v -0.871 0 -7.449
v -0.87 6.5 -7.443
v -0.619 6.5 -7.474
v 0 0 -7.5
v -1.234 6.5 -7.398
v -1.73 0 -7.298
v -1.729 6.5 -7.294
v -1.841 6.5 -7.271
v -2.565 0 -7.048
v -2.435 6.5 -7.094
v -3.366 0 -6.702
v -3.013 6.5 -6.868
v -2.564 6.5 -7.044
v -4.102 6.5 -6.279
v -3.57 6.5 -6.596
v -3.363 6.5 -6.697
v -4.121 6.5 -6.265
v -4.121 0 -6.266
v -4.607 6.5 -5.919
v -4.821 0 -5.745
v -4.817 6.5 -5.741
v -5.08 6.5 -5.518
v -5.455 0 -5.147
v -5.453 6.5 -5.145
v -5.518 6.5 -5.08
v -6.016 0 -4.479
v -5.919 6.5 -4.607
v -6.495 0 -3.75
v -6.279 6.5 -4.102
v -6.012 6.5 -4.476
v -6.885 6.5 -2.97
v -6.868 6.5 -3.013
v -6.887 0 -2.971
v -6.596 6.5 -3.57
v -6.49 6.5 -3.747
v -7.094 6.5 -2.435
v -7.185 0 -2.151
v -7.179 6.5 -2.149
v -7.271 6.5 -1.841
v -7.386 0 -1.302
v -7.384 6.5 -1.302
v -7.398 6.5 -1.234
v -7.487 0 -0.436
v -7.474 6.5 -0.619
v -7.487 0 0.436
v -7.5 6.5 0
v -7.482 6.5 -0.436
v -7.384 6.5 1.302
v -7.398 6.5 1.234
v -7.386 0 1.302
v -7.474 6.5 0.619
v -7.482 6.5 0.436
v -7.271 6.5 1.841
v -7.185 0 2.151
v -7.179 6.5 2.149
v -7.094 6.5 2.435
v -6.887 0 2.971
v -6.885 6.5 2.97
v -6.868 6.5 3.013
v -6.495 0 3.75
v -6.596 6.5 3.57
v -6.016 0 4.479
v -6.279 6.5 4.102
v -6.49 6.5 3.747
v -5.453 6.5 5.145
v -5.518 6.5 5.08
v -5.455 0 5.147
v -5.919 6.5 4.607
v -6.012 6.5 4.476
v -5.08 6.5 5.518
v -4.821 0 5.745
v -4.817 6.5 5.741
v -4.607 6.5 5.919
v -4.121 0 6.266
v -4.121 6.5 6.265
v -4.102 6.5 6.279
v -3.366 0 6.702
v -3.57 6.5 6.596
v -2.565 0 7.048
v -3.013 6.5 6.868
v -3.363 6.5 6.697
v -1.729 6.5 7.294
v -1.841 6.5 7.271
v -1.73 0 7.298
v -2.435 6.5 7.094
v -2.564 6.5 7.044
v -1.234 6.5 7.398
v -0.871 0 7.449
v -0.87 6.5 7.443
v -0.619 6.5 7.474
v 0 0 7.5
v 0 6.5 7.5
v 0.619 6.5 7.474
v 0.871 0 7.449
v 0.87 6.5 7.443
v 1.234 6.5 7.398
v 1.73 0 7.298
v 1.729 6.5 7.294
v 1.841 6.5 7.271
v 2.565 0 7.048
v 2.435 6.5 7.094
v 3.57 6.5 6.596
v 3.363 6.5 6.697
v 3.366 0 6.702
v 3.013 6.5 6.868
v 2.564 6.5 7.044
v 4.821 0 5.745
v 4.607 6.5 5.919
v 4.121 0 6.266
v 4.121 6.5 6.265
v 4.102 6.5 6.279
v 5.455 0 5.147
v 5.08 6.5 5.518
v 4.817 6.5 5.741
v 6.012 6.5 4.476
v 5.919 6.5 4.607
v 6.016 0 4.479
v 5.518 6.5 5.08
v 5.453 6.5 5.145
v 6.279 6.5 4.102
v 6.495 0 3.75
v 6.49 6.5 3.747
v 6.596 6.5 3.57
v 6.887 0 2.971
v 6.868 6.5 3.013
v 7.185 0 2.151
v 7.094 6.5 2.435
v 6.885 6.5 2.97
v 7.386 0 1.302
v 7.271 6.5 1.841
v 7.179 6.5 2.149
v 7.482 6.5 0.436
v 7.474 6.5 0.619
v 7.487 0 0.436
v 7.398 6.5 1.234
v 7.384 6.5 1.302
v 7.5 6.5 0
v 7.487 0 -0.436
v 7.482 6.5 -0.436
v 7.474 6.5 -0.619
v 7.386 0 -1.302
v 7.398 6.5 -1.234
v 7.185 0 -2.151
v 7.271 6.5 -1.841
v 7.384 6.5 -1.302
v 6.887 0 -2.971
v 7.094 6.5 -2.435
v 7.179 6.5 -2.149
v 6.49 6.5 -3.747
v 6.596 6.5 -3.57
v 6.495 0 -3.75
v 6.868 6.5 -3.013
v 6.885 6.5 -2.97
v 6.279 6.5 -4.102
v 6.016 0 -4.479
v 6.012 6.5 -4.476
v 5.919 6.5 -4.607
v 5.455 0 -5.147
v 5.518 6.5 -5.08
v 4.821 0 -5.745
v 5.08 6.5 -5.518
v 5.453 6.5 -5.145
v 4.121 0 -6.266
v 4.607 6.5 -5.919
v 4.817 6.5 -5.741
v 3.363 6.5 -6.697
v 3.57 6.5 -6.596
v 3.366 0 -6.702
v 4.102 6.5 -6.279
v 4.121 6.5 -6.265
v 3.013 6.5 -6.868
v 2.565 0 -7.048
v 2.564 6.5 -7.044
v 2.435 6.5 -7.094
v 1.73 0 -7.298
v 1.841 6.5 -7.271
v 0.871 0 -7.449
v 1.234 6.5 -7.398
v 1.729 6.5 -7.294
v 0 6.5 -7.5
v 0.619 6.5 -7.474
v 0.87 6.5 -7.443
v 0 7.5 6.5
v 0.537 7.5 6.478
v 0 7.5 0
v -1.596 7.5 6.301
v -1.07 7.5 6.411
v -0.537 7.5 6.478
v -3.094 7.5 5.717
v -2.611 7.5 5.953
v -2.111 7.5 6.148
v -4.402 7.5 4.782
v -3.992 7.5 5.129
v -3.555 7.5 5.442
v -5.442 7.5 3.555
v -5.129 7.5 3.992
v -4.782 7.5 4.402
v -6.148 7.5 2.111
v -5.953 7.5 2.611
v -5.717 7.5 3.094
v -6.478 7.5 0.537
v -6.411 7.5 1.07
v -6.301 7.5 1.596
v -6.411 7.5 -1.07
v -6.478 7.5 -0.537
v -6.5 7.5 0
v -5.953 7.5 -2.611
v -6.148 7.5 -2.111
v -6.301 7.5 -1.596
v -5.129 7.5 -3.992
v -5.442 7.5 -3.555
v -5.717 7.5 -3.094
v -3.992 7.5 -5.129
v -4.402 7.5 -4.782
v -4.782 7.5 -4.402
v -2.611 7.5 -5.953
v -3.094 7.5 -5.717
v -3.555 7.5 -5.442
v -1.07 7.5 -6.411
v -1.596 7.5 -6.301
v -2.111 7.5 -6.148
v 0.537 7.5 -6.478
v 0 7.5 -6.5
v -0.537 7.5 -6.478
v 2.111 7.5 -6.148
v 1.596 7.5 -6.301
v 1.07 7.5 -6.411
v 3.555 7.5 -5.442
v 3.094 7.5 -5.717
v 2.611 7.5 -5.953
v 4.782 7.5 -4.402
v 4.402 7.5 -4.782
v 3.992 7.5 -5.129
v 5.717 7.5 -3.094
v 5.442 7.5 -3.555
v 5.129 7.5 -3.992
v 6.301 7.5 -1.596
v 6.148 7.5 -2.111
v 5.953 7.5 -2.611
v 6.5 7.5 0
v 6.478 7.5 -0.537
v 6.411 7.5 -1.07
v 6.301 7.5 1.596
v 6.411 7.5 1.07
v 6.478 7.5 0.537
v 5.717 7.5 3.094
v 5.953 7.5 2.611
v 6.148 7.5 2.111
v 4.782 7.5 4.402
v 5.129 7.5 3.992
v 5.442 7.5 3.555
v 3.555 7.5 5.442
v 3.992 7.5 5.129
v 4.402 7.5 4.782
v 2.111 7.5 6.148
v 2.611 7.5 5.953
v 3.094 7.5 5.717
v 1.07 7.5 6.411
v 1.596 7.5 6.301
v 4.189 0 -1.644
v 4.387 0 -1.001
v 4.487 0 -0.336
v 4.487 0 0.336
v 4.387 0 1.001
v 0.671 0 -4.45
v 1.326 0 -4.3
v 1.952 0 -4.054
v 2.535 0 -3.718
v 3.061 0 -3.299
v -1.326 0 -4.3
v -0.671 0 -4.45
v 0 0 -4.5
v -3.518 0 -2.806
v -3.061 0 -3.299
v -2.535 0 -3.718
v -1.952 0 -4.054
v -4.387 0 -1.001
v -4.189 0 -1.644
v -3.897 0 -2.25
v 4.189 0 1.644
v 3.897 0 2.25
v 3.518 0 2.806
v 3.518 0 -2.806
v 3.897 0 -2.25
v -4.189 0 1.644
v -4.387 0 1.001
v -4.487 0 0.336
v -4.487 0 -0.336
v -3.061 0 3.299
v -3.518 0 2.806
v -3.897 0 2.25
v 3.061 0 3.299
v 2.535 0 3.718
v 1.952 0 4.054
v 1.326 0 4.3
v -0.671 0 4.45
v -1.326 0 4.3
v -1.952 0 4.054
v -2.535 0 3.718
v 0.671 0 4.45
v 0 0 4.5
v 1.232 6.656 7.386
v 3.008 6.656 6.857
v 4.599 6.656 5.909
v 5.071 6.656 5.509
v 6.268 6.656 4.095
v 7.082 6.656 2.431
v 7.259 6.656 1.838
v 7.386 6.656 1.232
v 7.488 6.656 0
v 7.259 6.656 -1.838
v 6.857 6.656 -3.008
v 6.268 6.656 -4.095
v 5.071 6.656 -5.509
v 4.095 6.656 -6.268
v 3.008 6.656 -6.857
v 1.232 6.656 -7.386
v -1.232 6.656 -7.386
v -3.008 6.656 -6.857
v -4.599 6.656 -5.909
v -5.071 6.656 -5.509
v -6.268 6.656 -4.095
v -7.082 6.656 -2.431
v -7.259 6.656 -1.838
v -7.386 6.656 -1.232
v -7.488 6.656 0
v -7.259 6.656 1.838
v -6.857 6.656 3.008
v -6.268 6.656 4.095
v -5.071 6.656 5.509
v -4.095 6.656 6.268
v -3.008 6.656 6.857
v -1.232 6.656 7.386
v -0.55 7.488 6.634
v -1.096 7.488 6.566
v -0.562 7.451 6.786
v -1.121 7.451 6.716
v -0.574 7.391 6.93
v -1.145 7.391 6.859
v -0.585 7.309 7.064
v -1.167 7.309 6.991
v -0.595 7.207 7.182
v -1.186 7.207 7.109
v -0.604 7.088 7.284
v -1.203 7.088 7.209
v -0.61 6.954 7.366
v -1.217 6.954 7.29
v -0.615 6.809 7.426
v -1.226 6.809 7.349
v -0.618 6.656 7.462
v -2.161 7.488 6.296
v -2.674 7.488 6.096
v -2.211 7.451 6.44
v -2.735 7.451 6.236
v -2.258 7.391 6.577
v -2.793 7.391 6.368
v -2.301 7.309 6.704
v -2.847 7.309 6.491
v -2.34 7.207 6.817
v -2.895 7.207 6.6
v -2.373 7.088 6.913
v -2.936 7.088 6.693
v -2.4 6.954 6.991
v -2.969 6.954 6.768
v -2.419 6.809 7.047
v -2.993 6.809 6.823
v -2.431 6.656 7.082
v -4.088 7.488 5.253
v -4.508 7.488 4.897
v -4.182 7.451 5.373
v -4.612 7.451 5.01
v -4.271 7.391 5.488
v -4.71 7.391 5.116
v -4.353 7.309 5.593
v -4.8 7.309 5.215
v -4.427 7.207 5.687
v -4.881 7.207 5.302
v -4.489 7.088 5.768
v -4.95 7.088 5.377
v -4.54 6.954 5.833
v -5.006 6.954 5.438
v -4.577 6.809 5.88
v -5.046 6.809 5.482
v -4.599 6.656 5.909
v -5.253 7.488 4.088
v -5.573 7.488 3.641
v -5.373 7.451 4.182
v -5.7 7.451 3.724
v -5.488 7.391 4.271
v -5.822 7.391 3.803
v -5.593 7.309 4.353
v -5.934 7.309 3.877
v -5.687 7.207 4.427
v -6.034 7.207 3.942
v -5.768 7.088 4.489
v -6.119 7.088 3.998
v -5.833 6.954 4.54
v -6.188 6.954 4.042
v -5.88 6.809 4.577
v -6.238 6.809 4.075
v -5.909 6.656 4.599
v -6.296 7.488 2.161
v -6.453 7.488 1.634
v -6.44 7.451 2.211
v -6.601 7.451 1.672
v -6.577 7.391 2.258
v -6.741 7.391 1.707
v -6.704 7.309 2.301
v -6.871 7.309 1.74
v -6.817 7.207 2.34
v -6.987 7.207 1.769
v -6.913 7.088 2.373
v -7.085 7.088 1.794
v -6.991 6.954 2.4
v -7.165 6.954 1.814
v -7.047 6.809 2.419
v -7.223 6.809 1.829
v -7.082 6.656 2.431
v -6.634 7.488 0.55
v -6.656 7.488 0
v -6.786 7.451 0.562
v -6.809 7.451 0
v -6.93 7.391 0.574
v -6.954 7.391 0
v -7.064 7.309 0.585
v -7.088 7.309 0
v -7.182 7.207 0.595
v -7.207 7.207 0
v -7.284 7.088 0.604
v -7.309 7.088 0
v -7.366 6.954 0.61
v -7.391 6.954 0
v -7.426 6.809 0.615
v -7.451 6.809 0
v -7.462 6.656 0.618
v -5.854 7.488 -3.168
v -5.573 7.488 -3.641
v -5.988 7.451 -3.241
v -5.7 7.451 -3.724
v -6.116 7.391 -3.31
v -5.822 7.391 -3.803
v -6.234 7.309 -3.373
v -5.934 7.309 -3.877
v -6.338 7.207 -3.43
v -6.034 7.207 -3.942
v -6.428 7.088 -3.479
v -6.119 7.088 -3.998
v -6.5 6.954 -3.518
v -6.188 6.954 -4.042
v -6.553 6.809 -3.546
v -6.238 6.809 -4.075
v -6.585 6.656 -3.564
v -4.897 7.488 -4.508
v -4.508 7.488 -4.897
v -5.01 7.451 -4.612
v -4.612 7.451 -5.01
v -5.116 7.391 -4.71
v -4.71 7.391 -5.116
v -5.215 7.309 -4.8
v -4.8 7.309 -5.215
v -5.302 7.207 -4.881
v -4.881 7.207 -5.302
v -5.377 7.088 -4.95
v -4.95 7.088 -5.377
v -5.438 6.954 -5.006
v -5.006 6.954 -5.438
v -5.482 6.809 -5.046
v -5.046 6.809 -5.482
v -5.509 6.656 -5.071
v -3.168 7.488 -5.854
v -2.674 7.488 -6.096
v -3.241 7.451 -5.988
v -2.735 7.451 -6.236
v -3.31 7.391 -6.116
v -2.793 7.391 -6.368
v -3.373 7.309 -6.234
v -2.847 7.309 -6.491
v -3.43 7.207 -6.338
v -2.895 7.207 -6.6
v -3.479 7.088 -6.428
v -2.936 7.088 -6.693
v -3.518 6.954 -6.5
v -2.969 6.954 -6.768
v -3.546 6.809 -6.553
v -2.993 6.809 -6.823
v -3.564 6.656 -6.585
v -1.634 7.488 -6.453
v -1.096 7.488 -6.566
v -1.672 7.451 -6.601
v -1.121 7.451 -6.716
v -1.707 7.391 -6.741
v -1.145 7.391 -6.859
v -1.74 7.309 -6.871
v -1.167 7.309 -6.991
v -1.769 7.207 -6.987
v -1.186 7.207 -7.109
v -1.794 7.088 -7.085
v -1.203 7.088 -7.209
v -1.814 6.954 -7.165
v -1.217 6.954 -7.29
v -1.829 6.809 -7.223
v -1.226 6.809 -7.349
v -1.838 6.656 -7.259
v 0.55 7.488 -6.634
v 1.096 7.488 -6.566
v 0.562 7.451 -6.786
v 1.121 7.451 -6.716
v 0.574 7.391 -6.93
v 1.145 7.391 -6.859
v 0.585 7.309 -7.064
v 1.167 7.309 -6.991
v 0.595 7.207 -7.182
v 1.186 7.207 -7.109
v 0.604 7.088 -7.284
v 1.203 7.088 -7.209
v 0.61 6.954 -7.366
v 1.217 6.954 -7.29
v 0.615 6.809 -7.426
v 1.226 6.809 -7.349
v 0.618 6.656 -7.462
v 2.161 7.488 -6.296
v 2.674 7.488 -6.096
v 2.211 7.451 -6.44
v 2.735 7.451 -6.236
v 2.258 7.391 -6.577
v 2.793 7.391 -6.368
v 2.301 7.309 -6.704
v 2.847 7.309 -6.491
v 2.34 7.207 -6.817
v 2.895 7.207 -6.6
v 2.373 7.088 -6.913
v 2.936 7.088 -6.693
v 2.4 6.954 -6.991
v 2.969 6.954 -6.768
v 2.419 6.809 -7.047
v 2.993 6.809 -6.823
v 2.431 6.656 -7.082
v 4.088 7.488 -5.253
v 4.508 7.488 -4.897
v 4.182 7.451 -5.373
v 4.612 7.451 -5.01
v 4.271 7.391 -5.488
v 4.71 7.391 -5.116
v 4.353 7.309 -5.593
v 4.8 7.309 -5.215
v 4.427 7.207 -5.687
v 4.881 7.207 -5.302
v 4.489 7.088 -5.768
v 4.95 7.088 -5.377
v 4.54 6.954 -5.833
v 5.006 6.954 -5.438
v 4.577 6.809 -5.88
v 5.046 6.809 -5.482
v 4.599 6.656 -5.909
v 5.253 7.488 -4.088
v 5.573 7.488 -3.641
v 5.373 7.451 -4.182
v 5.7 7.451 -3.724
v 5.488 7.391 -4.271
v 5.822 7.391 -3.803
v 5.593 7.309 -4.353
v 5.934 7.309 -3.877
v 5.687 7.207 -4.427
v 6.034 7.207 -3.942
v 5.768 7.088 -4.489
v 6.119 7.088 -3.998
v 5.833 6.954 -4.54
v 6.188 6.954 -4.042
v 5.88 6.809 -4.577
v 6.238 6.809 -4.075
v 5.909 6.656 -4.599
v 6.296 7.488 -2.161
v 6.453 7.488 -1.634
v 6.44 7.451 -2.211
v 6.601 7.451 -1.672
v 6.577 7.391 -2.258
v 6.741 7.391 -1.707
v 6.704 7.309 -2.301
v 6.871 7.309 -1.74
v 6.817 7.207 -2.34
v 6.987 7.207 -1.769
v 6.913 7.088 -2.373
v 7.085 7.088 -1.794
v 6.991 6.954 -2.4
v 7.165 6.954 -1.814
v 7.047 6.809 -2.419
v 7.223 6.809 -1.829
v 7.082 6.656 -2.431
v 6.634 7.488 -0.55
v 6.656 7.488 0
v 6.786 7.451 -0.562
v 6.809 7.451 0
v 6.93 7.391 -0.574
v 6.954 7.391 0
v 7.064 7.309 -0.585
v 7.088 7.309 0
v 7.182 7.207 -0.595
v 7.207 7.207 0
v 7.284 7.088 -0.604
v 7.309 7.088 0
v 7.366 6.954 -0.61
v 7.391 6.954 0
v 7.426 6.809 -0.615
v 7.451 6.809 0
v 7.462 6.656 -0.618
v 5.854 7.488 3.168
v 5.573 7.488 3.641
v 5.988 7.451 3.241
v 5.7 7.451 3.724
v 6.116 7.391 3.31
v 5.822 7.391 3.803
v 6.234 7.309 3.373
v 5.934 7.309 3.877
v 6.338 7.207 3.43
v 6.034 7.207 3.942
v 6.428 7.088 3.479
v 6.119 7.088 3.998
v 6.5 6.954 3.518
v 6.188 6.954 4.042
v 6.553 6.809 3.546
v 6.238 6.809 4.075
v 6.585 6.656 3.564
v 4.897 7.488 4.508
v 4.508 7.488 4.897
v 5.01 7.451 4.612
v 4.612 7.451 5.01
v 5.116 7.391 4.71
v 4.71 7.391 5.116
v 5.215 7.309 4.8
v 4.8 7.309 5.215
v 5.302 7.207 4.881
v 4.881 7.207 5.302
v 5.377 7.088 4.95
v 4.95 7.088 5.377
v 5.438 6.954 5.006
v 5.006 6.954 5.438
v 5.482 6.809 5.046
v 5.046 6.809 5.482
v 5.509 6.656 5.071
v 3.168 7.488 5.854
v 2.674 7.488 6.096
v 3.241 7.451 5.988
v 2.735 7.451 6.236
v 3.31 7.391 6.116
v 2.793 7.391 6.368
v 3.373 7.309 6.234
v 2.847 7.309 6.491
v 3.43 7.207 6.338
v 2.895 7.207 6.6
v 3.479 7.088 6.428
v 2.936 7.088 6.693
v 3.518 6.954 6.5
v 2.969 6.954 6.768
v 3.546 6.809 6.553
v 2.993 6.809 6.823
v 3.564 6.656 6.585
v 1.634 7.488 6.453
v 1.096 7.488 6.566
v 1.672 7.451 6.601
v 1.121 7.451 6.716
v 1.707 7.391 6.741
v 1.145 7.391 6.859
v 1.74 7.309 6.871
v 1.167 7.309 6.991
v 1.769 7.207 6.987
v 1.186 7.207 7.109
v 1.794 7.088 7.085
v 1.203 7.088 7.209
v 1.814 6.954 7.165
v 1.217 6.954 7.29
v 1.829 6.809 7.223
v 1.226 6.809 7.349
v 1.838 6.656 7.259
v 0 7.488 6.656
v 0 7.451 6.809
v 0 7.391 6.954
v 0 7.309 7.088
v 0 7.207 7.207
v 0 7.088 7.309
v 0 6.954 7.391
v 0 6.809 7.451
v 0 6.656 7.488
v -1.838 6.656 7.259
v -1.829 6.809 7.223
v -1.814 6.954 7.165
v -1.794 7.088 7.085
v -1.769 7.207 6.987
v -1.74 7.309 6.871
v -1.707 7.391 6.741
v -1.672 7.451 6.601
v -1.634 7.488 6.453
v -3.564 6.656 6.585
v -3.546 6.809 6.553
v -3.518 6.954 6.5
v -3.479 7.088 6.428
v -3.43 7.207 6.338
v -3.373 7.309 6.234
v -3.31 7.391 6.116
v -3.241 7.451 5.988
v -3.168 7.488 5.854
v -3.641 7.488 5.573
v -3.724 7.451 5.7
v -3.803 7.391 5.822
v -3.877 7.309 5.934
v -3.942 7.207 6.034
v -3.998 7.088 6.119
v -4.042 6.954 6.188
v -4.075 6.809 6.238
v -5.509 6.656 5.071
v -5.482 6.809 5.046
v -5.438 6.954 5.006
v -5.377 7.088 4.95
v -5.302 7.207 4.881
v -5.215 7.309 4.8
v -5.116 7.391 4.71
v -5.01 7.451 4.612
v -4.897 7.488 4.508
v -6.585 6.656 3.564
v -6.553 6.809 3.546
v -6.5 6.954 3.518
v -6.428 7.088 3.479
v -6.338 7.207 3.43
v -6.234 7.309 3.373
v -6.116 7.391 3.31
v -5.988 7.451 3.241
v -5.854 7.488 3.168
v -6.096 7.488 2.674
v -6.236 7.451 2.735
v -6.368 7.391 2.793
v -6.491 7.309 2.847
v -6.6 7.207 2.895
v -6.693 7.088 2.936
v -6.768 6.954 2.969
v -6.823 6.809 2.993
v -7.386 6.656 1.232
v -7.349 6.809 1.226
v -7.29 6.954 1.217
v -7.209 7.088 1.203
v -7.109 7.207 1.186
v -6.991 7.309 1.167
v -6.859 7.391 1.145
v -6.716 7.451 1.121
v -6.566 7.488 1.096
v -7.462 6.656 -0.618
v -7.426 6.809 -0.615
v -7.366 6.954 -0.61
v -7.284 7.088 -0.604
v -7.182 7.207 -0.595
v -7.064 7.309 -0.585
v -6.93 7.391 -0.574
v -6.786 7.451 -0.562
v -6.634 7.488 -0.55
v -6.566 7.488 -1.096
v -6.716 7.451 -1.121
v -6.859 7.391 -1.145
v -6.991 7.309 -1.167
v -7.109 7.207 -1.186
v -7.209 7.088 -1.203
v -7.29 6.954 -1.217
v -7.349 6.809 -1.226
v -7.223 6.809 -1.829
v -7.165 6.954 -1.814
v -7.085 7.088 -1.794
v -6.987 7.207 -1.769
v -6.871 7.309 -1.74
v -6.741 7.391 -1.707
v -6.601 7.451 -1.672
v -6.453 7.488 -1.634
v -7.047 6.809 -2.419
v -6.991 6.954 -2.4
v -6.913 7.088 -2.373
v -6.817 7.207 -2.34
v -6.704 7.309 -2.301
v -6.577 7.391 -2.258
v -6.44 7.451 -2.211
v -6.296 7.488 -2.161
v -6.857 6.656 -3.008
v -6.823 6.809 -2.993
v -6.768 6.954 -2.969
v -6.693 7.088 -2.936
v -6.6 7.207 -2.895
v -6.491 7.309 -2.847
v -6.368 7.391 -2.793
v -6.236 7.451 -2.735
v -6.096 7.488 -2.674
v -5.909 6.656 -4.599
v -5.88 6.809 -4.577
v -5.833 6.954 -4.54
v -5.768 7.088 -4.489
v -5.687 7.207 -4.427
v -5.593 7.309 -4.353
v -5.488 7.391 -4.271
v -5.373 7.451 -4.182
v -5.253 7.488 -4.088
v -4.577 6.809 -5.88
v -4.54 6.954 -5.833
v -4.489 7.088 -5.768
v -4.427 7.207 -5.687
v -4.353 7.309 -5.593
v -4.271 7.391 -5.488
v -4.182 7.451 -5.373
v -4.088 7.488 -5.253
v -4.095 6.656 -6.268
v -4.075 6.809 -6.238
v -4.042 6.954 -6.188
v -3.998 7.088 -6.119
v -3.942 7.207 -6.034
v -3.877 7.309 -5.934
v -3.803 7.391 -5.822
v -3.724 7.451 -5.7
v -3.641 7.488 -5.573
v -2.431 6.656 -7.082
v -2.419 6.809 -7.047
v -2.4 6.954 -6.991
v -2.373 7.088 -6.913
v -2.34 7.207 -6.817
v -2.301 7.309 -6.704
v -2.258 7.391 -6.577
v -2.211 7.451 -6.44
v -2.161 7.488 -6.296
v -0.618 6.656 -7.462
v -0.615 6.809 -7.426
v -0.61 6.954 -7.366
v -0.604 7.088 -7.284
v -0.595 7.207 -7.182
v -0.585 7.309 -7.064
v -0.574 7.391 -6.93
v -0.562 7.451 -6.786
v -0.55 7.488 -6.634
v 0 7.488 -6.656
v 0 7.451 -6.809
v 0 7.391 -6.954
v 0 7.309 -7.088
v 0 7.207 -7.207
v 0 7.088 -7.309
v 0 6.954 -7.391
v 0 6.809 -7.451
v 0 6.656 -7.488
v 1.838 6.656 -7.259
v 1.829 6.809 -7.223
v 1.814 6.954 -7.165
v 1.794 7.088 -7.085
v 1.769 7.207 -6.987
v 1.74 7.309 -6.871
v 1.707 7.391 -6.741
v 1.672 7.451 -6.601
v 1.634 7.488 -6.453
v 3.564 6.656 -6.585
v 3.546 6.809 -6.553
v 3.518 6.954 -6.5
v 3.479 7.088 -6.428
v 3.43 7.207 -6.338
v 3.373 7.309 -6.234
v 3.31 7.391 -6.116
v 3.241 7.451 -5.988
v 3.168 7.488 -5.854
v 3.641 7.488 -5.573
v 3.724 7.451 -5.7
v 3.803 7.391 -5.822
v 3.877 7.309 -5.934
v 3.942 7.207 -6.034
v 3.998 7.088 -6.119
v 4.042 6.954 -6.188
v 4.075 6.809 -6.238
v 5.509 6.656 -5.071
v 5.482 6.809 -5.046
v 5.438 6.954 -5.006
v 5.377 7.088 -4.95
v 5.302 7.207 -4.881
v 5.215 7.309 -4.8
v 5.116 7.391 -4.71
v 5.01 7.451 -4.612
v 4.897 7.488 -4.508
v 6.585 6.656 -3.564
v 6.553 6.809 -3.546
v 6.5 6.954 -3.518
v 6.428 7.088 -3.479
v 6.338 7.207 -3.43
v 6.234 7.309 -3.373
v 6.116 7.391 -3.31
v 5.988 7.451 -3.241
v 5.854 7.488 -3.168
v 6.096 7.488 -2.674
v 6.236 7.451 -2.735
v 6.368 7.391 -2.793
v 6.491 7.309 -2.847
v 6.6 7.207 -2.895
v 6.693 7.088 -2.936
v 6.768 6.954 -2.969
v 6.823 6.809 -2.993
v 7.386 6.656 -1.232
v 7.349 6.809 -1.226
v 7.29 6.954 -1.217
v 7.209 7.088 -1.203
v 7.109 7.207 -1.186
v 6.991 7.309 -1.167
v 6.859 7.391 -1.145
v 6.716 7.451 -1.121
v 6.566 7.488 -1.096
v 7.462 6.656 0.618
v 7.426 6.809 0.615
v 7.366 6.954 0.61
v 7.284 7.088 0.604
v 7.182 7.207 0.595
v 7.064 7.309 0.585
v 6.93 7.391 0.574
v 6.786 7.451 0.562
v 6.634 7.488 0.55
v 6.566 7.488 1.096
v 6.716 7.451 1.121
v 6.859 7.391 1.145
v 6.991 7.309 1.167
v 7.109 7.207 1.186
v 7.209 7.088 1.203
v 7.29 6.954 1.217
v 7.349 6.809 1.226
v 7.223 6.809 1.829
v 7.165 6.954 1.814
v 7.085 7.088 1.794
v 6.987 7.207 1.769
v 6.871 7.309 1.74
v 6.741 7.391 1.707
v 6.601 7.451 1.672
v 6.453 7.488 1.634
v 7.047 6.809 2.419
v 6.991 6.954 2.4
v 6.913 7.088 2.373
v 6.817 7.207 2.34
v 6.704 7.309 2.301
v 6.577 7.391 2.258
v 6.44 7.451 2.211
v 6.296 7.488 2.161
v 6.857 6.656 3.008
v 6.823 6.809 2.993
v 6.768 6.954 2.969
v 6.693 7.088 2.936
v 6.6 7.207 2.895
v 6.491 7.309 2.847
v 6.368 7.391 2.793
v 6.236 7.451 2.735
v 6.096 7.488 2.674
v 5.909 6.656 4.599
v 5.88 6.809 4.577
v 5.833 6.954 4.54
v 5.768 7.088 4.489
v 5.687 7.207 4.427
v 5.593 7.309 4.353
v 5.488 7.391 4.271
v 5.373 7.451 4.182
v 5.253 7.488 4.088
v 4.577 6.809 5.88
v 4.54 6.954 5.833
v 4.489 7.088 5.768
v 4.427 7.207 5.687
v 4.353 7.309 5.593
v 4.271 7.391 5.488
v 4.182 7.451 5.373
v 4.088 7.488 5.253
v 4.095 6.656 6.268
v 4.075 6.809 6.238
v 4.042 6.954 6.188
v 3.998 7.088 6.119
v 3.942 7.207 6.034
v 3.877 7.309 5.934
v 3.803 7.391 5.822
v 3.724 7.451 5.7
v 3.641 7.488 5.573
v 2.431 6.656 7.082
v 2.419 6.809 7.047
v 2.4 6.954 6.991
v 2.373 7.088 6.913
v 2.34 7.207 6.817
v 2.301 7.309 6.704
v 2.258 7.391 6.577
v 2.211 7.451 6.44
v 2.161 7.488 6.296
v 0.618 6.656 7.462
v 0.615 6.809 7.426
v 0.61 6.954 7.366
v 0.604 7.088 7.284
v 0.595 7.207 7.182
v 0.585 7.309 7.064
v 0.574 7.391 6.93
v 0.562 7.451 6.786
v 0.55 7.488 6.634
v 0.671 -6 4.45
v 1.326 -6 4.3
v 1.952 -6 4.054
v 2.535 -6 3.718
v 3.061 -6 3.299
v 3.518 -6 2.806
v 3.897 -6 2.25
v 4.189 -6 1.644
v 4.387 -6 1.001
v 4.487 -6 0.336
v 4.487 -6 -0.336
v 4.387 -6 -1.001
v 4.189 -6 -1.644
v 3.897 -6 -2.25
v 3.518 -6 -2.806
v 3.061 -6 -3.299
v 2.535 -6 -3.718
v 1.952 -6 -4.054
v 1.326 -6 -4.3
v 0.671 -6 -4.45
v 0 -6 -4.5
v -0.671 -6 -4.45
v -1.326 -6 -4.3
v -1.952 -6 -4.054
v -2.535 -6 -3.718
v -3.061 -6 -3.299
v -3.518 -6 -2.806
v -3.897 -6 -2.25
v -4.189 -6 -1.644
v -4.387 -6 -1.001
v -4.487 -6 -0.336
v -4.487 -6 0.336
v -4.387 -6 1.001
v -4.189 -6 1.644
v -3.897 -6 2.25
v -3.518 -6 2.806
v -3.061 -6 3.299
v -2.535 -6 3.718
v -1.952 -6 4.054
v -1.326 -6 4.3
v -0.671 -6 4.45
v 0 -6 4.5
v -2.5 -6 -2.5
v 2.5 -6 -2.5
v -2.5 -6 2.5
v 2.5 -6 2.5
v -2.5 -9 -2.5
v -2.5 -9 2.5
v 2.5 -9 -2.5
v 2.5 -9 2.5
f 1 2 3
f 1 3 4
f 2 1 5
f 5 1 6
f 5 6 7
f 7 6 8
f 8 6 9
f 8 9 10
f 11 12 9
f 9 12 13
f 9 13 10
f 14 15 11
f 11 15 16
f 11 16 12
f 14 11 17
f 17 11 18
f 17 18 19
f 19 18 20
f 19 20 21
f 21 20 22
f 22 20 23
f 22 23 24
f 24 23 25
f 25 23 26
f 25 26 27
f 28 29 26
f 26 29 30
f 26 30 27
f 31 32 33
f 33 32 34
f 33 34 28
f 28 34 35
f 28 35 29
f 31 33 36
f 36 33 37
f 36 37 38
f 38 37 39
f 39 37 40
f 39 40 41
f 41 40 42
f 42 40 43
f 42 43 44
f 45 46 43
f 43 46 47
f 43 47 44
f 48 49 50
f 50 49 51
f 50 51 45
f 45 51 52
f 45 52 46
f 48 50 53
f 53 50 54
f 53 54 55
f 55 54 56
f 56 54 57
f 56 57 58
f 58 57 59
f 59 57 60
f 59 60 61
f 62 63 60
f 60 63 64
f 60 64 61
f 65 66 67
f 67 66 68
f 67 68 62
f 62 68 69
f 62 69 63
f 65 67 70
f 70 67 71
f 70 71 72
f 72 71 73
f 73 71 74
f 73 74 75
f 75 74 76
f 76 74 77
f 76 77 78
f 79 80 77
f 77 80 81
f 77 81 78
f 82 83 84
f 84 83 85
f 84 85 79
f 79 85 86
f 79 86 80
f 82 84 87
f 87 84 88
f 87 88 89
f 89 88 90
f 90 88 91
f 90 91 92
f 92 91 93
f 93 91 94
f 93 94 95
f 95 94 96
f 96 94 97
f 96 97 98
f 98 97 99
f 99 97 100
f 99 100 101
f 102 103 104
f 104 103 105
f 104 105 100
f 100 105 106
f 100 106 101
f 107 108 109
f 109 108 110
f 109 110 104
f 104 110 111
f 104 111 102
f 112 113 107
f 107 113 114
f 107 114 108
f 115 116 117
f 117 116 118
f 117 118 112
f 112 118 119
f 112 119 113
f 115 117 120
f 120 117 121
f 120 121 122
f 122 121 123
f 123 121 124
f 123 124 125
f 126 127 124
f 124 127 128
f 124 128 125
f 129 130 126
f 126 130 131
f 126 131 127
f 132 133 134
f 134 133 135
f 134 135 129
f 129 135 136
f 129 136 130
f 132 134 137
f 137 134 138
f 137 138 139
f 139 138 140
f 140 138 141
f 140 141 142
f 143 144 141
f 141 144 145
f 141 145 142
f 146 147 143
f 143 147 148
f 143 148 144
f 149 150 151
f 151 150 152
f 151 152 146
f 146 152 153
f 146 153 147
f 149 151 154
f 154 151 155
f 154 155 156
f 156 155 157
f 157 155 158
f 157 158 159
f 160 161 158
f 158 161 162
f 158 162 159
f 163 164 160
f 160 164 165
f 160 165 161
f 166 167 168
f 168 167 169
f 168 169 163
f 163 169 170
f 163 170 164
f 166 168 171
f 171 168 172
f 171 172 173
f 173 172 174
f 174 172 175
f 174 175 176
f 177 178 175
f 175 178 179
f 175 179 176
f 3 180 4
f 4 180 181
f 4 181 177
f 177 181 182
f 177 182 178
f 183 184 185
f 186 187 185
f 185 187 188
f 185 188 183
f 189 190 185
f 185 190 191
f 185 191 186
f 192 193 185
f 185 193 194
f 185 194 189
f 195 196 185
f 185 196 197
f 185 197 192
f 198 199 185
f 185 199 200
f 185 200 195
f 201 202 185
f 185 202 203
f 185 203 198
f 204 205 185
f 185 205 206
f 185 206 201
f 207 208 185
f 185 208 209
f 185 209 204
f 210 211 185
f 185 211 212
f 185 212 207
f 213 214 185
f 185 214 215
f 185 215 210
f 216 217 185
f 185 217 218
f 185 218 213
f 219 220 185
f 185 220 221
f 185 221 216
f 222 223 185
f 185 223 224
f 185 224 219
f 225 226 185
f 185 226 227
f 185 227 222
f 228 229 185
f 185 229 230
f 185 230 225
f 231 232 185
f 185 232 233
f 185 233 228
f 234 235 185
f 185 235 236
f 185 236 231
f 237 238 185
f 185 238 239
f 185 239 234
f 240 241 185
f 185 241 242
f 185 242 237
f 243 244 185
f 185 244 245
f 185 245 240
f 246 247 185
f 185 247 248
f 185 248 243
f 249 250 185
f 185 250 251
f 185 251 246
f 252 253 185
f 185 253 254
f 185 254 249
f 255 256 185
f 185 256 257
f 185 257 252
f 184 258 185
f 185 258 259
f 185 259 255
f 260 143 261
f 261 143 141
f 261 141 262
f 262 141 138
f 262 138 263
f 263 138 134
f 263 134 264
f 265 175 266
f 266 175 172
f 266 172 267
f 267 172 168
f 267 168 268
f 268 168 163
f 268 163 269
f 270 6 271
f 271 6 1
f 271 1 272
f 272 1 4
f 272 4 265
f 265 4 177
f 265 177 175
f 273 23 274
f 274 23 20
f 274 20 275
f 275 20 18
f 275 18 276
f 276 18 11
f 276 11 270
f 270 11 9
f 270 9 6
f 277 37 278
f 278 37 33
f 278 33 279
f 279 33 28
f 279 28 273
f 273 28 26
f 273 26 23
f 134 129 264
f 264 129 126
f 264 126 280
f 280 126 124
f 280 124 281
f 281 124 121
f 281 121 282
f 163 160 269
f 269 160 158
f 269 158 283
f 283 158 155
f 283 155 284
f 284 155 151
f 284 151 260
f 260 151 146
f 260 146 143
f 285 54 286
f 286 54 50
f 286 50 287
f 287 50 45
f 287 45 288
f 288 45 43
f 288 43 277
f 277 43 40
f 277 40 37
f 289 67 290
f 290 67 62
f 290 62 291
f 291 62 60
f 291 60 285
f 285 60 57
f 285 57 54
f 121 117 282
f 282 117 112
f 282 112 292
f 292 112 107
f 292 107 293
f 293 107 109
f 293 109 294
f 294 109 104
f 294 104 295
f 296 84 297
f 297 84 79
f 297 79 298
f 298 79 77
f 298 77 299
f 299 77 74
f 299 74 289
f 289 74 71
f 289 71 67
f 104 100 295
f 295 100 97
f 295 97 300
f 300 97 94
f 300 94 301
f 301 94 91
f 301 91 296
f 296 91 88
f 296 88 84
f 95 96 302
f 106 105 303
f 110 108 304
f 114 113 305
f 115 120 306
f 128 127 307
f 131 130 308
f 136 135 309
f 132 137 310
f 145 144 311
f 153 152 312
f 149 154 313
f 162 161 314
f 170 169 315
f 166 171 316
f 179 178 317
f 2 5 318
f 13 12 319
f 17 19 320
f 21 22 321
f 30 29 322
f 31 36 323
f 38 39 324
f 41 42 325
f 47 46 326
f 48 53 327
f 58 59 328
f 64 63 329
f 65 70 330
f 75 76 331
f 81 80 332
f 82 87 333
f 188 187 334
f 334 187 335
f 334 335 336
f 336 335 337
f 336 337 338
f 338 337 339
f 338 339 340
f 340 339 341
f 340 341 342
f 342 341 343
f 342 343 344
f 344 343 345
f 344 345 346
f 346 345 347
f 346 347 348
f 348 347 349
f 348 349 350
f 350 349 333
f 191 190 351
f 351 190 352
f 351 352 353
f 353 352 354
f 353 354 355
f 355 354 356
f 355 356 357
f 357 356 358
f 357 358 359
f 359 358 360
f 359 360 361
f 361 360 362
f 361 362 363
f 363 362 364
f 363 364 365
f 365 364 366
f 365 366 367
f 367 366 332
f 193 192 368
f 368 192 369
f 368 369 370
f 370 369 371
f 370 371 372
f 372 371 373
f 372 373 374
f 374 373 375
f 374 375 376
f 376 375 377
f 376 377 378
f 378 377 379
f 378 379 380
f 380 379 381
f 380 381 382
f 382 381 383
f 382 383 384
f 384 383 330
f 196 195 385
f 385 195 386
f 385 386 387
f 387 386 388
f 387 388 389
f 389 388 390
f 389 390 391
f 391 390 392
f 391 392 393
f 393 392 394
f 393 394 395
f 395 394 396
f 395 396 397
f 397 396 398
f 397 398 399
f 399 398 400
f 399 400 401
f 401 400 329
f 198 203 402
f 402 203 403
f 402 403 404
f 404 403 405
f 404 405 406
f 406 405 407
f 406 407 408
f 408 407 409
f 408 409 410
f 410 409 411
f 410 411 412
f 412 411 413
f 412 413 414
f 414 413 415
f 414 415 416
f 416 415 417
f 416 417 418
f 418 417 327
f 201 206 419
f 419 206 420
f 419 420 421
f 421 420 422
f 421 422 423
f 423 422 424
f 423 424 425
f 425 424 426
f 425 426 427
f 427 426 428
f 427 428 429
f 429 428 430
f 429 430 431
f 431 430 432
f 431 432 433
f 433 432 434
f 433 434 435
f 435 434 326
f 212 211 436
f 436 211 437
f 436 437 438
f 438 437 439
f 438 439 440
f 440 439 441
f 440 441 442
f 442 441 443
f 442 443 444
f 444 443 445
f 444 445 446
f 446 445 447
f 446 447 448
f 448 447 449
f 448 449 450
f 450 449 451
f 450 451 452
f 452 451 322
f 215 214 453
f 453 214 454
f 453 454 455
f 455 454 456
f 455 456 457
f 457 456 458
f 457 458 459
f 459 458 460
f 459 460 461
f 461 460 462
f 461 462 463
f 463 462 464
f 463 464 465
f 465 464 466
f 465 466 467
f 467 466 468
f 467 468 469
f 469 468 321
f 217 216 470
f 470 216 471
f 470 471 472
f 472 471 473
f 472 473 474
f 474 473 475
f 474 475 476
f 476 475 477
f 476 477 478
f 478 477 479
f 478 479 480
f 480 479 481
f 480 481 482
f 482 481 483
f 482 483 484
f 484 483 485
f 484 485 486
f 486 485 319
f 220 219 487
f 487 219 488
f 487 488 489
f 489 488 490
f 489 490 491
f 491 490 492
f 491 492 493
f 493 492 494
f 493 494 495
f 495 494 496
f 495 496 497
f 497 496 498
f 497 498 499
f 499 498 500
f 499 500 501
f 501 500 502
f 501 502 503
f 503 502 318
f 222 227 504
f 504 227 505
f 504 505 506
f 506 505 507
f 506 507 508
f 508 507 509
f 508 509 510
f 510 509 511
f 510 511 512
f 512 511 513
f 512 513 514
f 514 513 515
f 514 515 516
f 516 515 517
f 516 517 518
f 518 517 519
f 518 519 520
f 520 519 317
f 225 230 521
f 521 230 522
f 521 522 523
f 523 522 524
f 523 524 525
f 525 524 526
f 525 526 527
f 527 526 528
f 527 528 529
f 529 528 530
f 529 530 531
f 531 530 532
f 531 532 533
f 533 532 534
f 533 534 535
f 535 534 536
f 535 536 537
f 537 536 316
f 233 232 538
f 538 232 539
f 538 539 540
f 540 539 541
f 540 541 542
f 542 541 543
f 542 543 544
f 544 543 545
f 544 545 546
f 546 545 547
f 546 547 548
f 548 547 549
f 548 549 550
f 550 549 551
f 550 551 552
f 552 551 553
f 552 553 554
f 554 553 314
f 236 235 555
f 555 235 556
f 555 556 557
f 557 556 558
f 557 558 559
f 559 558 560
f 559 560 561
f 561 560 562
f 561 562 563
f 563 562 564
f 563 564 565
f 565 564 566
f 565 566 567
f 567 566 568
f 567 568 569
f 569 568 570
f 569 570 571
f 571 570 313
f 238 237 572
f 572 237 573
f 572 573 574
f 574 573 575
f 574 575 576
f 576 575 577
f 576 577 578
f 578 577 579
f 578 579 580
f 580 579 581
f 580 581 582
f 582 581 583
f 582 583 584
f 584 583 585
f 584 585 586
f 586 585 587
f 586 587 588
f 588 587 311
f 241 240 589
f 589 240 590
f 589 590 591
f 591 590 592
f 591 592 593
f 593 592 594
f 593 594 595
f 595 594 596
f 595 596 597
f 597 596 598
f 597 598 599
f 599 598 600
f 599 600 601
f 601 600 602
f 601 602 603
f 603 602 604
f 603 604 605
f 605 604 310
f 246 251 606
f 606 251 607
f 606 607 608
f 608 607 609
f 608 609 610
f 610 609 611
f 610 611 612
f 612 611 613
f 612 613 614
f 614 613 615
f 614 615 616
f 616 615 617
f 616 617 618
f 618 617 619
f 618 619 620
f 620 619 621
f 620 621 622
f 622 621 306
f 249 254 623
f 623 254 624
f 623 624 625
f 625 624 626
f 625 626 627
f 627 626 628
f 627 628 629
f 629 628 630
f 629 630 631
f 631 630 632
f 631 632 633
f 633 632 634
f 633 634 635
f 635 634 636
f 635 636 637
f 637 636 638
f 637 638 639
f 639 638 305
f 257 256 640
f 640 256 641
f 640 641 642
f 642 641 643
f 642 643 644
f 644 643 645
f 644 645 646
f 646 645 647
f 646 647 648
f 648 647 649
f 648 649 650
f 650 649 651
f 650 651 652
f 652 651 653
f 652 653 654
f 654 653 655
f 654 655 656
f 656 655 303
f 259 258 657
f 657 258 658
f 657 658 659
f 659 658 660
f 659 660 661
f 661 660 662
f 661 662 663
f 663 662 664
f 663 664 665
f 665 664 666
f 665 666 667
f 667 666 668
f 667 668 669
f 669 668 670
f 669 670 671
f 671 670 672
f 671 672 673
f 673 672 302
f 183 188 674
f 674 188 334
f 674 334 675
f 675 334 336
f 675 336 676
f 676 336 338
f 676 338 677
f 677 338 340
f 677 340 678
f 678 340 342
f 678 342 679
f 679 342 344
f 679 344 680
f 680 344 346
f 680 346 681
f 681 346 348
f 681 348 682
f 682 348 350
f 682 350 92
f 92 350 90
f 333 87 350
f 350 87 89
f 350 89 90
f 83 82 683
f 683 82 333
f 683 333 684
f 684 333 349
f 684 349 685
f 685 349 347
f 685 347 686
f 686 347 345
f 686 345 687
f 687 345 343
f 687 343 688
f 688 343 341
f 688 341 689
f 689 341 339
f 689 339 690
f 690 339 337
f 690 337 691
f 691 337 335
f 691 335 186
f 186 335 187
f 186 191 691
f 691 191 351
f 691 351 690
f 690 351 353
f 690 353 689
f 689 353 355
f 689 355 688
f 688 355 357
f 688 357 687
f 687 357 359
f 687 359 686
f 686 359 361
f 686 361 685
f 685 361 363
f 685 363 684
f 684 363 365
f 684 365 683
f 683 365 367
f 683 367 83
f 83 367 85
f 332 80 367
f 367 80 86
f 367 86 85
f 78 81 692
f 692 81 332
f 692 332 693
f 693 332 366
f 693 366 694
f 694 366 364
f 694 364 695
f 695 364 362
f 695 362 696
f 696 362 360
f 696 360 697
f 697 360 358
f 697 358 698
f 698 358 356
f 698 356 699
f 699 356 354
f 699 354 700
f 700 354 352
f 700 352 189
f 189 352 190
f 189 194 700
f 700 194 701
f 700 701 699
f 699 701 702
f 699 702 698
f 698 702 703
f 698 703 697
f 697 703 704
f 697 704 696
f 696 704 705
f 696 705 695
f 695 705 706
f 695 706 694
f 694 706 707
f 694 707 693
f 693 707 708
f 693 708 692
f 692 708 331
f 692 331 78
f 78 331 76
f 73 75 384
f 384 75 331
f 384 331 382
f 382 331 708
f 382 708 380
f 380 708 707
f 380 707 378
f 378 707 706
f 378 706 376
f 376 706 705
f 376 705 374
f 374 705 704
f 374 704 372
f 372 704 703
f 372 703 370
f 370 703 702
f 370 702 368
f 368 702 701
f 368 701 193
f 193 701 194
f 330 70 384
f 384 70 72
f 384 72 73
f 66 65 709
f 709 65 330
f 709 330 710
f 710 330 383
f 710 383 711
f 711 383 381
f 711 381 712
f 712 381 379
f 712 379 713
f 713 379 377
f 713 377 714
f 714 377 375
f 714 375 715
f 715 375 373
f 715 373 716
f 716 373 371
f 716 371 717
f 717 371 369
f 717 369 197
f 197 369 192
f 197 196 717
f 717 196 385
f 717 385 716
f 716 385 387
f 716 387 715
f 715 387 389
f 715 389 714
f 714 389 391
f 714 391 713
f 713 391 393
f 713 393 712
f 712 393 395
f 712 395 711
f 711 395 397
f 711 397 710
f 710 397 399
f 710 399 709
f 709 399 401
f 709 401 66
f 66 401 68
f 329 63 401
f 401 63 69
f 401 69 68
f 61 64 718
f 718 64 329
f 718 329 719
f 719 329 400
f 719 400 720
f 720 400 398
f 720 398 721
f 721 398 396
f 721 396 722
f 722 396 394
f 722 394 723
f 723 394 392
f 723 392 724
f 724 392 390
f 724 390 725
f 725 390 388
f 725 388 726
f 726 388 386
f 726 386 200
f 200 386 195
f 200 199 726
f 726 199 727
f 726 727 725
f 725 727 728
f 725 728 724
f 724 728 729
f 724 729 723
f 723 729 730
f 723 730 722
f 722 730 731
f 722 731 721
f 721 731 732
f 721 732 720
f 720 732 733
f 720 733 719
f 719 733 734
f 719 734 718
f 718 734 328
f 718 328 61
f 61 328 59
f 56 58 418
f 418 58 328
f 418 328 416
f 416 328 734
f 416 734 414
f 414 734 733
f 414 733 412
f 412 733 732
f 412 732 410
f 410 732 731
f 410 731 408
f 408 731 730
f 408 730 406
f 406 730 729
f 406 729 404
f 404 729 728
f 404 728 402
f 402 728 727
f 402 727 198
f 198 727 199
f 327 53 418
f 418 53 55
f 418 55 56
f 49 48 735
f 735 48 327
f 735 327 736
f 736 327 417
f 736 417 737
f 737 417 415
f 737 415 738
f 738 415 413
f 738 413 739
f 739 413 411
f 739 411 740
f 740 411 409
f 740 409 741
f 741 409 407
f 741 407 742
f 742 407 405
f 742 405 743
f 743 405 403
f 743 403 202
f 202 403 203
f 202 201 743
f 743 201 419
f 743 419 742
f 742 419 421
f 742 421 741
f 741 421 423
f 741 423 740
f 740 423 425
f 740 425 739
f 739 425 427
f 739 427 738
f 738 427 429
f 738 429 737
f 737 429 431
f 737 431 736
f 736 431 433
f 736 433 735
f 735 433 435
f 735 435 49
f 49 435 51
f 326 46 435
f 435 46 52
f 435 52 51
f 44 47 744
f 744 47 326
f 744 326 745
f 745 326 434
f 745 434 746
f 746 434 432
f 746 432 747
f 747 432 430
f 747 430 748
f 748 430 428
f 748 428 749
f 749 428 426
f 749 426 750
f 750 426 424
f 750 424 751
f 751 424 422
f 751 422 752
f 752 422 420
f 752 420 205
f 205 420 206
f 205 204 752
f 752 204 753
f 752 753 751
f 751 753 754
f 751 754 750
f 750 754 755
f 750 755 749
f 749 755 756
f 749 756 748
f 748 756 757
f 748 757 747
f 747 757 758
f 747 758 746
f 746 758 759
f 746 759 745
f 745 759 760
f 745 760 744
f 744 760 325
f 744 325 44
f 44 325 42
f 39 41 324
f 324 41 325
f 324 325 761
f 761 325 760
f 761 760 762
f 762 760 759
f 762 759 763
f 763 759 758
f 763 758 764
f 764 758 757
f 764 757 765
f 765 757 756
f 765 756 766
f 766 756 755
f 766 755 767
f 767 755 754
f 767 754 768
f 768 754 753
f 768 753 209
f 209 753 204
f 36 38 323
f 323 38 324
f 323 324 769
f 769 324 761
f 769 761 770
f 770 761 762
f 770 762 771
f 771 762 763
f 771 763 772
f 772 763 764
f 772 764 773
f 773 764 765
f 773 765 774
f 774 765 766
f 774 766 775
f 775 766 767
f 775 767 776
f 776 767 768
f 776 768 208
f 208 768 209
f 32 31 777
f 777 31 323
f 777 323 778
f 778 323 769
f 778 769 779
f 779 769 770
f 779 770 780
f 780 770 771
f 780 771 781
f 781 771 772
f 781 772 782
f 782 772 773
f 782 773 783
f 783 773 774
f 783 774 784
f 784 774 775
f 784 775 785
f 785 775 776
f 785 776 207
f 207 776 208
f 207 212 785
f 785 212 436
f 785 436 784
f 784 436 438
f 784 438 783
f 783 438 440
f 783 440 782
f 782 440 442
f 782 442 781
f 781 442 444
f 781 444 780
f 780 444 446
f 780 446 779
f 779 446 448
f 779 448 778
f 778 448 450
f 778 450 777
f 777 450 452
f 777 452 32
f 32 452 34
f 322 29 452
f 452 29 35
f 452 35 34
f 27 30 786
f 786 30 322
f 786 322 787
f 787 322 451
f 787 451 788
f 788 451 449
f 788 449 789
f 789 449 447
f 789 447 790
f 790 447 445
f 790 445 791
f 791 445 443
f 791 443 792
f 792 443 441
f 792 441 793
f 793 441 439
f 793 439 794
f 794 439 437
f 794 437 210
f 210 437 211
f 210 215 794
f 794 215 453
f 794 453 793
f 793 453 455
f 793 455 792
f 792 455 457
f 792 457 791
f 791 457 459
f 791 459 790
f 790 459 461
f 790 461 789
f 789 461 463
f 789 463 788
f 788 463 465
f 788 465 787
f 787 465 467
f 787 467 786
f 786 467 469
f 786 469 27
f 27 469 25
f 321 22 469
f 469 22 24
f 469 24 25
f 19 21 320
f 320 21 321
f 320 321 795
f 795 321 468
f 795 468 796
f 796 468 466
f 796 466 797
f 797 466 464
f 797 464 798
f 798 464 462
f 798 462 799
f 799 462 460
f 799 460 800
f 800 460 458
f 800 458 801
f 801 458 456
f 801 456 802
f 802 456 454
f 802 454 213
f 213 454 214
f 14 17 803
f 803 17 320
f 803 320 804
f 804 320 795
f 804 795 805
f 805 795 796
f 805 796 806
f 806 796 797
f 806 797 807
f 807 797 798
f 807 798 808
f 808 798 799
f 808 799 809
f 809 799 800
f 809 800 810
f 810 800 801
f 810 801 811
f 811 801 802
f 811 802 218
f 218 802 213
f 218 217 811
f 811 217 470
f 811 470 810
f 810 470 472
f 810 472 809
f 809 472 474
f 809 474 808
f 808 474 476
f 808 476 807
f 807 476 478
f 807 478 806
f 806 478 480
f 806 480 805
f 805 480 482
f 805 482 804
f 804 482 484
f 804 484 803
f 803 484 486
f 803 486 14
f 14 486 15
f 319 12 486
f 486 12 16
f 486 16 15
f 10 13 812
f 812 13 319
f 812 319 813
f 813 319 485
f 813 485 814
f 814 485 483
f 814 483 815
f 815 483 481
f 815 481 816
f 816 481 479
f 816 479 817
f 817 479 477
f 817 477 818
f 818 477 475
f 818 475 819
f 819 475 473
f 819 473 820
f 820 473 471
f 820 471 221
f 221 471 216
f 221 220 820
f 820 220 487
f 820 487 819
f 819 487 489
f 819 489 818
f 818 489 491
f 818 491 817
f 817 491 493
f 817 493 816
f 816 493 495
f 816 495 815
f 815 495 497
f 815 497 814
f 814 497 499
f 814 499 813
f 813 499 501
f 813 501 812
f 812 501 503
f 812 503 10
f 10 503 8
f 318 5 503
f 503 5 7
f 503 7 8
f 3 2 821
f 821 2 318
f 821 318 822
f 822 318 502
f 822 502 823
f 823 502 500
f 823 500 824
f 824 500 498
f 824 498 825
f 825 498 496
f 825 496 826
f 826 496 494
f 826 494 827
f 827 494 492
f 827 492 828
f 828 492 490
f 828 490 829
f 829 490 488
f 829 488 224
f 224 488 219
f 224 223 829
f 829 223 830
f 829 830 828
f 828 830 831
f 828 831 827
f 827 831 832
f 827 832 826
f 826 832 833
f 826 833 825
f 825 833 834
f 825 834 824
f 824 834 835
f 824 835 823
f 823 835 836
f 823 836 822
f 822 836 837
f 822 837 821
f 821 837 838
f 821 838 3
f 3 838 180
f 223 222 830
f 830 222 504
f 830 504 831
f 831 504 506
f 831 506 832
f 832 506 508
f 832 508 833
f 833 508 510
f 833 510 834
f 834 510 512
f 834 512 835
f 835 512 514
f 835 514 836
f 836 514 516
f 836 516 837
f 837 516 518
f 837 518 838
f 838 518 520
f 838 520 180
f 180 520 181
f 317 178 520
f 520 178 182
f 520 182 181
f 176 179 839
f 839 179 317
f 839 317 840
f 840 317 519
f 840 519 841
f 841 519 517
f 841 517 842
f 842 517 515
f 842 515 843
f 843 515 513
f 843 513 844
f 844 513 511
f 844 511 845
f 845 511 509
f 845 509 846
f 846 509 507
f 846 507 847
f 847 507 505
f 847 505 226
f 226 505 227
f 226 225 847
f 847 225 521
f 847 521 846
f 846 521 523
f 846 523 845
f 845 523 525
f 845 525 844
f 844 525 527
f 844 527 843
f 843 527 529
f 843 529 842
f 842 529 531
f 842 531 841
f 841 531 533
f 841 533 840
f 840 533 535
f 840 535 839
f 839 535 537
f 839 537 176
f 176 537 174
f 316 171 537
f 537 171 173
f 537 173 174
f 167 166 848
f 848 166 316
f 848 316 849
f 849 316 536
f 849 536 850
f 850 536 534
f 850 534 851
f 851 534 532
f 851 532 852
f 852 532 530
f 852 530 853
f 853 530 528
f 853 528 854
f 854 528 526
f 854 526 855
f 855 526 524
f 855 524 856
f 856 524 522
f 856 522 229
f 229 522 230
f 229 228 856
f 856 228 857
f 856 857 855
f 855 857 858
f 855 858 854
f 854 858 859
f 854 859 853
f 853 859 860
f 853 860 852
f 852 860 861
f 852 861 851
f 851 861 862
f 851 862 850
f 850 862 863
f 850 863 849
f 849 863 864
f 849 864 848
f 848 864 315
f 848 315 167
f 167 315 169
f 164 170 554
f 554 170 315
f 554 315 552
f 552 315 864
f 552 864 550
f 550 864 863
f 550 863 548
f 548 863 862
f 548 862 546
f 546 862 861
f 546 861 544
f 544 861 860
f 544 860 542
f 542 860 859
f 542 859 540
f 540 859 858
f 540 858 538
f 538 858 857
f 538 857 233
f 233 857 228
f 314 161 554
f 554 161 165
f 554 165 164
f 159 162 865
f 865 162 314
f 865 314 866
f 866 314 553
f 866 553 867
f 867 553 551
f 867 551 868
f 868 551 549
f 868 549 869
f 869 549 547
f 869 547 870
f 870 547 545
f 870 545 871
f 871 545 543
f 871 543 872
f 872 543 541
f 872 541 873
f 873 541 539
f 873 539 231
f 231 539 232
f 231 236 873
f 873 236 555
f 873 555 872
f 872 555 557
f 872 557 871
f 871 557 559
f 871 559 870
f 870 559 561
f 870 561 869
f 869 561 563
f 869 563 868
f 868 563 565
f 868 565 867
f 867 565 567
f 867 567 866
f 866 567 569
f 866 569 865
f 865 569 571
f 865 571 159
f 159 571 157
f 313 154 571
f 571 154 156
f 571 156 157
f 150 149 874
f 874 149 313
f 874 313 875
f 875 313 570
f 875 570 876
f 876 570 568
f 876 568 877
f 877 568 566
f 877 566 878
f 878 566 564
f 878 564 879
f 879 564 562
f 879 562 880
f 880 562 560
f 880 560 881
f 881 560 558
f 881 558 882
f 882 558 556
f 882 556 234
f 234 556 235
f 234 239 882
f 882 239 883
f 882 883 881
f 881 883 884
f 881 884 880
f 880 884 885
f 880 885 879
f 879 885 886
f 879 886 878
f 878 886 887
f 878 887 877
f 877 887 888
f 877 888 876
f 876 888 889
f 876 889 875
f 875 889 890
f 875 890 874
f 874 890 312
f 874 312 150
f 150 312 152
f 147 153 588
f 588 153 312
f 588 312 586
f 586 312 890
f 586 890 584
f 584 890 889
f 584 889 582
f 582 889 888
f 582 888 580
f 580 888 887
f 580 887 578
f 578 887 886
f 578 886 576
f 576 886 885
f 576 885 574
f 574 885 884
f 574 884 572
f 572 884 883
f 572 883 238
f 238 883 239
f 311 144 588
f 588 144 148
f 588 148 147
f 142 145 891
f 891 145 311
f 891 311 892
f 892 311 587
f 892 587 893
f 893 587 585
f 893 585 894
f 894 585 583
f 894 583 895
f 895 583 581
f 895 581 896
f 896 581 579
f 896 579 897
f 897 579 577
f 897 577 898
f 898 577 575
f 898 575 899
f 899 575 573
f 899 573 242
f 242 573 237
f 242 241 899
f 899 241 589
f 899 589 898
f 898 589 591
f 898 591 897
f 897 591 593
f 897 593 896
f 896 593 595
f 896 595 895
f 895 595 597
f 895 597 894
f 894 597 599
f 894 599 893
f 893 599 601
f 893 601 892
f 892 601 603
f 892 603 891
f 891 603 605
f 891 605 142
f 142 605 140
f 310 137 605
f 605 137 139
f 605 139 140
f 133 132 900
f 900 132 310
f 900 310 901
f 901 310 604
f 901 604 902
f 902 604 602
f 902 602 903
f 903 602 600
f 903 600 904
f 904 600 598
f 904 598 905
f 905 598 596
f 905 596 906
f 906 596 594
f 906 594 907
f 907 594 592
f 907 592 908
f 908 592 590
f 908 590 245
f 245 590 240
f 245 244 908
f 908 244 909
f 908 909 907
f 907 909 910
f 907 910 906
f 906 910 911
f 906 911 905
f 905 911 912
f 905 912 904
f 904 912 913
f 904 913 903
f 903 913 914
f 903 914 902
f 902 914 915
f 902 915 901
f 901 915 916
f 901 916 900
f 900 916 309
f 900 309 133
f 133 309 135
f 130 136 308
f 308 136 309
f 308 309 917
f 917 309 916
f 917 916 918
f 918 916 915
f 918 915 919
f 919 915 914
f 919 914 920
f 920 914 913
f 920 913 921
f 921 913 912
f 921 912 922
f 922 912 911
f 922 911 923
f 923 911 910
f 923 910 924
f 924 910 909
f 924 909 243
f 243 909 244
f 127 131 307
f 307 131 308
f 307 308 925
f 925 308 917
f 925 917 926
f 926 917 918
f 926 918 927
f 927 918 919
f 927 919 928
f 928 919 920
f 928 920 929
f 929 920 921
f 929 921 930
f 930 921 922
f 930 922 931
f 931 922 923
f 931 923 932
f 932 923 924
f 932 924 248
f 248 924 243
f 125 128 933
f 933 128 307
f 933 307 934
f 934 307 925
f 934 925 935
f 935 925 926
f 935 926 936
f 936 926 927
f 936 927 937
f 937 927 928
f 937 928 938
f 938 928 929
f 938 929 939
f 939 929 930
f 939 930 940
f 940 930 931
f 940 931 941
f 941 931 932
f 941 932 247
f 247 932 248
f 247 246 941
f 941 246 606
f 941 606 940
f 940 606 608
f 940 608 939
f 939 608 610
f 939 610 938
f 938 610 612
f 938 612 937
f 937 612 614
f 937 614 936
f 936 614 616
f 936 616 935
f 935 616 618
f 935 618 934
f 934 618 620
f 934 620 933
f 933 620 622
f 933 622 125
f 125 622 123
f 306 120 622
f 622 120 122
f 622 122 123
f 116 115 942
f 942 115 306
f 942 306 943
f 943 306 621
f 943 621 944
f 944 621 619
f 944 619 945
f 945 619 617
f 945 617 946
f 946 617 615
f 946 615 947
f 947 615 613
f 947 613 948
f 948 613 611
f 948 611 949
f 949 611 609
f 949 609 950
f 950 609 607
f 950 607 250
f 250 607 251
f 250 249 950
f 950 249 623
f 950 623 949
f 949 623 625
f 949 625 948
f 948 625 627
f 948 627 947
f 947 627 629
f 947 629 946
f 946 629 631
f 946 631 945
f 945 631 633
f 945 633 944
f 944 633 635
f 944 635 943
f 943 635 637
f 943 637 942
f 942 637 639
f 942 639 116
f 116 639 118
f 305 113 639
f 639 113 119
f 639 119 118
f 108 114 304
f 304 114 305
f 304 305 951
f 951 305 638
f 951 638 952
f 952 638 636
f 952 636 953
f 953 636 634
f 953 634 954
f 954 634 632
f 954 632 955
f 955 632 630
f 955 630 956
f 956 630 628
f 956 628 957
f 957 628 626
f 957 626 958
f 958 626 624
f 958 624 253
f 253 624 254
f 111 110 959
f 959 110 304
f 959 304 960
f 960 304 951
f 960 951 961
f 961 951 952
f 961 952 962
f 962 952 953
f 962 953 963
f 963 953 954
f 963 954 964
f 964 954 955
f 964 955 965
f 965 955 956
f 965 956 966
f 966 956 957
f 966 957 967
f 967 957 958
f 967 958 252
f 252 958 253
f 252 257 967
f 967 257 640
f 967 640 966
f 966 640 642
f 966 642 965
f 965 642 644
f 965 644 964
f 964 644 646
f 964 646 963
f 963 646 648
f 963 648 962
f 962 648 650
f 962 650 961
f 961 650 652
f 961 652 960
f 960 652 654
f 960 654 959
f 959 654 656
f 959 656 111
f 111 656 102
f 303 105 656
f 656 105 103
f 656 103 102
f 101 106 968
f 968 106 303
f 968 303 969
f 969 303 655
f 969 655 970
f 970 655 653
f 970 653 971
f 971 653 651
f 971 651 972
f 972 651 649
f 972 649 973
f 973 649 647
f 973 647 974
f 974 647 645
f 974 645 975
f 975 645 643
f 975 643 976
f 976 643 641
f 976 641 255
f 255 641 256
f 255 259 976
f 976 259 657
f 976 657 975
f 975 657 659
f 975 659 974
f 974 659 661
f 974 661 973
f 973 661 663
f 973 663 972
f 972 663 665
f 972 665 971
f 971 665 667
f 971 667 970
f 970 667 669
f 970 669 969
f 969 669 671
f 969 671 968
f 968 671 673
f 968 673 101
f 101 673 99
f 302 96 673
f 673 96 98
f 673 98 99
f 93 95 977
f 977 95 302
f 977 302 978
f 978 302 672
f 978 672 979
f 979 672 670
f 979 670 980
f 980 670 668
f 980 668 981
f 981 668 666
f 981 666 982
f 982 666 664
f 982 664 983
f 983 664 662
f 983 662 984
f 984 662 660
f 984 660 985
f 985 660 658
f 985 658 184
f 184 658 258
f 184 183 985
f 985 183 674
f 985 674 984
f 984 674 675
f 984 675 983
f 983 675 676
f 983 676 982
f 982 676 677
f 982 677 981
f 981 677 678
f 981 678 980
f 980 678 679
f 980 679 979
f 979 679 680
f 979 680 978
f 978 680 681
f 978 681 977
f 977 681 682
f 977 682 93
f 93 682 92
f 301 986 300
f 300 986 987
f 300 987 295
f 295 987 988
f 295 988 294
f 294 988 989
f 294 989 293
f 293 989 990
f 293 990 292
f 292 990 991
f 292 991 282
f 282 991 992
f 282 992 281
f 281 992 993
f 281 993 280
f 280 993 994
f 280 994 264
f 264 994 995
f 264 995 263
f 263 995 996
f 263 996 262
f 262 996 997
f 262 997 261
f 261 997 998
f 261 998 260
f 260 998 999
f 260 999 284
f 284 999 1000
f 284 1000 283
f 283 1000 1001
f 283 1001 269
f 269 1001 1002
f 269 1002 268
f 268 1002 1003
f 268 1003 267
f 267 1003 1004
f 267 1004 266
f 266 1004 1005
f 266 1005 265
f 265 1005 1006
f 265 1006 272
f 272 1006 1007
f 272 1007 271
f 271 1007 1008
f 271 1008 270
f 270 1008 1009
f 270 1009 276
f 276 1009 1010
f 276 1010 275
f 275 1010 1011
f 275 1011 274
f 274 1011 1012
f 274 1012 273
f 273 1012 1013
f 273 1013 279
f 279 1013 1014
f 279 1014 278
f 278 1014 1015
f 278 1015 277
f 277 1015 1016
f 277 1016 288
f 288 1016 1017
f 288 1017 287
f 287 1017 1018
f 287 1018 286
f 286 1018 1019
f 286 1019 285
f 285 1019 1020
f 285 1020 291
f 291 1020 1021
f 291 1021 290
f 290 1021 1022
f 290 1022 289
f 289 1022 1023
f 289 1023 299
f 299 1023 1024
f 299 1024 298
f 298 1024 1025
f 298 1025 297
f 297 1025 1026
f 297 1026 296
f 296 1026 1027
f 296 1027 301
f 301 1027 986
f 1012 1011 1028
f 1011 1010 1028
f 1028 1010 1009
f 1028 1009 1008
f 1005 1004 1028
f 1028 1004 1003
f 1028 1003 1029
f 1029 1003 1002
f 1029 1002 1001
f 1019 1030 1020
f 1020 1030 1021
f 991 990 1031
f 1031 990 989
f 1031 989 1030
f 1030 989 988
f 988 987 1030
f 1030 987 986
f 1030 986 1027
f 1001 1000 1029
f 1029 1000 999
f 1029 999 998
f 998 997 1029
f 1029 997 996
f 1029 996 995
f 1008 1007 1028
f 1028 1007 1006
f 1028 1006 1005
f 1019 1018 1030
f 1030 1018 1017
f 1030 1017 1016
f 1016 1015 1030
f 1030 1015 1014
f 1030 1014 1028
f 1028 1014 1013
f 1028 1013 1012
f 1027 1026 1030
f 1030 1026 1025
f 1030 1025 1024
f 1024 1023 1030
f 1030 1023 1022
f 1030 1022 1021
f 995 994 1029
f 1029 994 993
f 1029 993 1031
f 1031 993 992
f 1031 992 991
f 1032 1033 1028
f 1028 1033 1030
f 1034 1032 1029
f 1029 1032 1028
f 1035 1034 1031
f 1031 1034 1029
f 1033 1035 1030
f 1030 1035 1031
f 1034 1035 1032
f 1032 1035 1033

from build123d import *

# Parameters (mm, degrees)
SKETCH1_R           = 7.5
BOSS_EXTRUDE1_DEPTH = 7.5
FILLET1_R           = 1
SKETCH2_R           = 4.5
BOSS_EXTRUDE2_DEPTH = 6
SKETCH3_W           = 5
SKETCH3_H           = 5
BOSS_EXTRUDE3_DEPTH = 3


with BuildPart() as part:
    # Sketch1 → Boss-Extrude1 (new body)
    with BuildSketch(Plane(origin=(0, 0, 0), x_dir=(1, 0, 0), z_dir=(0, 1, 0))):
        with Locations(Location((0, 0, 0), (0, 0, 270))):
            Circle(SKETCH1_R)
    extrude(amount=BOSS_EXTRUDE1_DEPTH)

    # Fillet1
    fillet1_edges = [part.edges().sort_by_distance(p)[0] for p in [
        (0, 7.5, -7.5),
    ]]
    fillet(fillet1_edges, radius=FILLET1_R)

    # Sketch2 → Boss-Extrude2 (add)
    with BuildSketch(Plane(origin=(0, 0, 0), x_dir=(-1, 0, 0), z_dir=(0, -1, 0))):
        with Locations(Location((0, 0, 0), (0, 0, 90))):
            Circle(SKETCH2_R)
    extrude(amount=BOSS_EXTRUDE2_DEPTH)

    # Sketch3 → Boss-Extrude3 (add)
    with BuildSketch(Plane(origin=(0, -6, 0), x_dir=(-1, 0, 0), z_dir=(0, -1, 0))):
        Rectangle(SKETCH3_W, SKETCH3_H)
    extrude(amount=BOSS_EXTRUDE3_DEPTH)


solid = part.part
